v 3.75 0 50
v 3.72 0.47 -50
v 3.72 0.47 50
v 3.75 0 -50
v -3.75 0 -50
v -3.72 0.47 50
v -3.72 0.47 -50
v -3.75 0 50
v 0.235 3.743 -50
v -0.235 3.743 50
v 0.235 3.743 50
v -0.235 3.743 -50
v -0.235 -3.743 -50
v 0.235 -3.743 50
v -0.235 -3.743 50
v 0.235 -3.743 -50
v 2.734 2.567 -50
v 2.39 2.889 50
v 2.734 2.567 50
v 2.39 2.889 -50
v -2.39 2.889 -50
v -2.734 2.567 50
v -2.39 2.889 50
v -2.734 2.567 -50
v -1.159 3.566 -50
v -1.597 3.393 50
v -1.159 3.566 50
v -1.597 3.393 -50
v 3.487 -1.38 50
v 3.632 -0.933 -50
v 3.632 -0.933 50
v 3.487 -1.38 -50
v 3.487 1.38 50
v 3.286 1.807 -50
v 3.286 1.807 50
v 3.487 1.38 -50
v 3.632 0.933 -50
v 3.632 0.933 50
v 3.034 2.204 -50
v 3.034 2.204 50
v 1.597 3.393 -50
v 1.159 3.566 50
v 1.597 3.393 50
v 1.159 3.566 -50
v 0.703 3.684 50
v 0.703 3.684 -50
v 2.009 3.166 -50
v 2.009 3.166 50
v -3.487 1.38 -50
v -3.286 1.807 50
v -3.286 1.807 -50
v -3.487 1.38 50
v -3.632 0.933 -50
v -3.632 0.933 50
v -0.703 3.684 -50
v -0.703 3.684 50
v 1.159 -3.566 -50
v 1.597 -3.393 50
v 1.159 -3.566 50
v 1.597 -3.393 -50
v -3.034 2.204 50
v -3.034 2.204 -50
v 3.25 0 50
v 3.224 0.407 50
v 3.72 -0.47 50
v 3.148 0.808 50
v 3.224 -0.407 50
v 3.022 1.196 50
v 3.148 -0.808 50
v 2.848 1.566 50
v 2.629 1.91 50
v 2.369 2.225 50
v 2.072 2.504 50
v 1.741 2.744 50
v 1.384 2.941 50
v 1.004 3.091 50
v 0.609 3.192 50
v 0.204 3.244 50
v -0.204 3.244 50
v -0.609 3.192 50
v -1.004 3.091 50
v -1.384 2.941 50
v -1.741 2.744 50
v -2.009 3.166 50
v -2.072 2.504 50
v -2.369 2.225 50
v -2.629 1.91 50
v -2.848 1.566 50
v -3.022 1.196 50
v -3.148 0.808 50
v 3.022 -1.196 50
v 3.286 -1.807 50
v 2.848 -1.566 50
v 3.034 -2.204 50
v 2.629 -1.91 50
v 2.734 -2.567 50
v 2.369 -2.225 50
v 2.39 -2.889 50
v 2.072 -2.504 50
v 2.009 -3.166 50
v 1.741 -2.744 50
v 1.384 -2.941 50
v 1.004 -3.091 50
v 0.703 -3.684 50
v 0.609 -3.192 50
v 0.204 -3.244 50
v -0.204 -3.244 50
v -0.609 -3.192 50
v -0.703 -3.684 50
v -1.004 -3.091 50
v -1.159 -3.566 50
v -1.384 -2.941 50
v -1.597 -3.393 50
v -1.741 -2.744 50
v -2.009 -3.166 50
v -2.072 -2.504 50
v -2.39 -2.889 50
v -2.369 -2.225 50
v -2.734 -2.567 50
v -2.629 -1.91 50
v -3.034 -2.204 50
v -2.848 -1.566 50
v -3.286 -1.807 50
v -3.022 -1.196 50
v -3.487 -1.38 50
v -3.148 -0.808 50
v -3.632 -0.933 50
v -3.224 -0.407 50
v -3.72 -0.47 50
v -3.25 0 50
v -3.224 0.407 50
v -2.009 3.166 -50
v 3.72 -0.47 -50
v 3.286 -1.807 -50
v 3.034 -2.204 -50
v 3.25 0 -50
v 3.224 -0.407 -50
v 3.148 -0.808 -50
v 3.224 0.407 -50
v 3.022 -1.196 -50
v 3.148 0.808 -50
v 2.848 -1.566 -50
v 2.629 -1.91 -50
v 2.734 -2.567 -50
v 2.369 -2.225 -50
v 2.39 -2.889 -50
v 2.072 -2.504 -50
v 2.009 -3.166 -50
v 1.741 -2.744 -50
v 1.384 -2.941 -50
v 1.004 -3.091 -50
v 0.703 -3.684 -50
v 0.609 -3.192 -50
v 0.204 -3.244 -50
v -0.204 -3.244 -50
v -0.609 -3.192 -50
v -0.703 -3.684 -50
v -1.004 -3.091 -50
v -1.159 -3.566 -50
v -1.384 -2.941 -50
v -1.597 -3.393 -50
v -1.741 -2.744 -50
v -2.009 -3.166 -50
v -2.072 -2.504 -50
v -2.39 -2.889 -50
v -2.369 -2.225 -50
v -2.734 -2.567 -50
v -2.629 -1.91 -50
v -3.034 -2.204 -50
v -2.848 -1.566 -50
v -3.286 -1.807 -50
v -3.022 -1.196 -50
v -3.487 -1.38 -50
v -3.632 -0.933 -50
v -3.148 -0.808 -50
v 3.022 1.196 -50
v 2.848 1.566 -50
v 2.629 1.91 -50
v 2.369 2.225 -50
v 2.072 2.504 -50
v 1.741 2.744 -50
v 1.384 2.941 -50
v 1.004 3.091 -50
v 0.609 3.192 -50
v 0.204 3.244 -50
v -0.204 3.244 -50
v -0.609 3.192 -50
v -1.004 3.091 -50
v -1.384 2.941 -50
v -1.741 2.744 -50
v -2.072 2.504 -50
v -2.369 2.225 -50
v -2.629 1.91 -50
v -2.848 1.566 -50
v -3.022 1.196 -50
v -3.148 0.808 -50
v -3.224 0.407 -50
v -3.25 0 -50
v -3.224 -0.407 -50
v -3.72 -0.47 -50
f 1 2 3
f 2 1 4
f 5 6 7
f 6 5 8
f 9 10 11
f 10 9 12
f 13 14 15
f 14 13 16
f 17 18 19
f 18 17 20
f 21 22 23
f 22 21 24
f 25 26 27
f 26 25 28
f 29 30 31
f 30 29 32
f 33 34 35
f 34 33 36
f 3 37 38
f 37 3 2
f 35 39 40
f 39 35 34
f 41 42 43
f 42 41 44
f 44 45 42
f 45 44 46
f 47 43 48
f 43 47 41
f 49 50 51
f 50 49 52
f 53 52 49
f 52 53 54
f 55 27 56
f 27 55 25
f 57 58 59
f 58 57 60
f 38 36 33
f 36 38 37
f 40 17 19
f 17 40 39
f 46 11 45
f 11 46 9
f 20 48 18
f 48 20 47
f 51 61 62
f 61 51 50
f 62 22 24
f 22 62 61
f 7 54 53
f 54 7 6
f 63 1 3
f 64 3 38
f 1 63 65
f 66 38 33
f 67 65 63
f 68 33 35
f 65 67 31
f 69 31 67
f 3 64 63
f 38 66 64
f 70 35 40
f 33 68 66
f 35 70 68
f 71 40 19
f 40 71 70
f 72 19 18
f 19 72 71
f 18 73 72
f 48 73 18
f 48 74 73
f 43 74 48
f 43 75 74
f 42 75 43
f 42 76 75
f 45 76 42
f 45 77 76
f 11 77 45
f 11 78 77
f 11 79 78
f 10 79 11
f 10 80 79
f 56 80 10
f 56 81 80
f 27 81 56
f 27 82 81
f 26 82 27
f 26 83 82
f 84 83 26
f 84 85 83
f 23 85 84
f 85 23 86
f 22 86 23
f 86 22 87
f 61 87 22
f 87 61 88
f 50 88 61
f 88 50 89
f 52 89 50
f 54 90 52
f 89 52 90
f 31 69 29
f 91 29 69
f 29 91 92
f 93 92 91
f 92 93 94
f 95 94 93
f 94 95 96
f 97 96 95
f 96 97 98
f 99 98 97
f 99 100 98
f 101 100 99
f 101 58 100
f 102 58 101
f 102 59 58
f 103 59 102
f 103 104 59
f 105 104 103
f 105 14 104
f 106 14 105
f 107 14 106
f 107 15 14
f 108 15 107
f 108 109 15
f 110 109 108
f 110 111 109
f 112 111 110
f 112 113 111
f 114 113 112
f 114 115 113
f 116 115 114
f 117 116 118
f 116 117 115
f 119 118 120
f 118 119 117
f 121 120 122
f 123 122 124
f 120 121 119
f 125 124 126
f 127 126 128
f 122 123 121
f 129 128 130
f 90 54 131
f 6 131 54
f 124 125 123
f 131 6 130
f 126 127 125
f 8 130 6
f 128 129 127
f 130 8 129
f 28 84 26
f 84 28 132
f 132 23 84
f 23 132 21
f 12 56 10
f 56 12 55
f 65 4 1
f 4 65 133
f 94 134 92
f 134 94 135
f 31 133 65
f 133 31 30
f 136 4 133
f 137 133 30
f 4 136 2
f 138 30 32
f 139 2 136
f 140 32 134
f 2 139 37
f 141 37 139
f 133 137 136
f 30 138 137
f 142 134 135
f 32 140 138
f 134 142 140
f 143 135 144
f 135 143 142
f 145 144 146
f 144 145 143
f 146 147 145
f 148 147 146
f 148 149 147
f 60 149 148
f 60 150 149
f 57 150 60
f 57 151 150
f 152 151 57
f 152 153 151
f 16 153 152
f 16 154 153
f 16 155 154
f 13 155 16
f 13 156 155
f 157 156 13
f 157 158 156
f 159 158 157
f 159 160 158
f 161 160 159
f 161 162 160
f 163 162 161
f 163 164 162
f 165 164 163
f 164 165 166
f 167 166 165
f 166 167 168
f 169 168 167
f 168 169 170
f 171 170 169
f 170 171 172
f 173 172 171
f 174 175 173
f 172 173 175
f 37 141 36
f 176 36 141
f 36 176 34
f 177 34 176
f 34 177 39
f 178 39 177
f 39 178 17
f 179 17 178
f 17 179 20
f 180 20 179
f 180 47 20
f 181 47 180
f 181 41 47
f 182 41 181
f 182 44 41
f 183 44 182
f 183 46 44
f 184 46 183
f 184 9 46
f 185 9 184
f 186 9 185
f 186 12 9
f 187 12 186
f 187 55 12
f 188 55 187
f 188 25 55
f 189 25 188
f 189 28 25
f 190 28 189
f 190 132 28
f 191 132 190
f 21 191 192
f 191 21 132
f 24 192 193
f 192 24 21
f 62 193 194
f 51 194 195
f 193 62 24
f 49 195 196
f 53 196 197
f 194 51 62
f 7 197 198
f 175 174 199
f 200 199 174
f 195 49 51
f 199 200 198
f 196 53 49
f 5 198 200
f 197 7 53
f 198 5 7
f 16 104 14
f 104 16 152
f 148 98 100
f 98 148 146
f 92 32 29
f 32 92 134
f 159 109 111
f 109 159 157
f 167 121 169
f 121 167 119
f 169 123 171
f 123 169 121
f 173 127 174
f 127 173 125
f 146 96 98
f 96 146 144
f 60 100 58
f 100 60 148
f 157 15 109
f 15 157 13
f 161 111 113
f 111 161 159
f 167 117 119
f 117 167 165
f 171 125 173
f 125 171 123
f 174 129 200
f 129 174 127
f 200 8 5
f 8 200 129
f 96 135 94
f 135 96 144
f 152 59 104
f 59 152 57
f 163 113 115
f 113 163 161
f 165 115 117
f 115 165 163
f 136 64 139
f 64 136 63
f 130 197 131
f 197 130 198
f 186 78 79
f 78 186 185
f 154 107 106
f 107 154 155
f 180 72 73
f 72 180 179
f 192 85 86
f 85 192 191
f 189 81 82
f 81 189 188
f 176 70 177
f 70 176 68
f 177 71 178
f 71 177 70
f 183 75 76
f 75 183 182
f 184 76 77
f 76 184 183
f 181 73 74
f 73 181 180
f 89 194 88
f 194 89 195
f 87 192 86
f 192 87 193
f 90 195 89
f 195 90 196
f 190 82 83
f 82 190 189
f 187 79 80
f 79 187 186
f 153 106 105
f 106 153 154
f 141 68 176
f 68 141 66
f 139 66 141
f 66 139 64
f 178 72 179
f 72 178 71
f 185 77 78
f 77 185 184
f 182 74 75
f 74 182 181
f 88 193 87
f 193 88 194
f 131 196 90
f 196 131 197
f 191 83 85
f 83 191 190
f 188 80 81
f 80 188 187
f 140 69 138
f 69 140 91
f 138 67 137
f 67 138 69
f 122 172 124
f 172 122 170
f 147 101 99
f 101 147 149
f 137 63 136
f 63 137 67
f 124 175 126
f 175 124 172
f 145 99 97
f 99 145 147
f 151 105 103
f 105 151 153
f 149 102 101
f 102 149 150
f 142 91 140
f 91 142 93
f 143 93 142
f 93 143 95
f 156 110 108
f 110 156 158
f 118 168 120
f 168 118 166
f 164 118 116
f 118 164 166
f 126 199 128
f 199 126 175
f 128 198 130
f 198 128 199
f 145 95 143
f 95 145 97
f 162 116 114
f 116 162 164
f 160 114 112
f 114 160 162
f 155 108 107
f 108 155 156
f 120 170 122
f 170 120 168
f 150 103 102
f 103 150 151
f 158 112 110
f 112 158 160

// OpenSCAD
$fn = 50;


difference() {
	union() {
		translate(v = [0, 0, -50.0000000000]) {
			cylinder(h = 100, r = 3.7500000000);
		}
	}
	union() {
		translate(v = [0, 0, -100.0000000000]) {
			cylinder(h = 200, r = 3.2500000000);
		}
	}
}
